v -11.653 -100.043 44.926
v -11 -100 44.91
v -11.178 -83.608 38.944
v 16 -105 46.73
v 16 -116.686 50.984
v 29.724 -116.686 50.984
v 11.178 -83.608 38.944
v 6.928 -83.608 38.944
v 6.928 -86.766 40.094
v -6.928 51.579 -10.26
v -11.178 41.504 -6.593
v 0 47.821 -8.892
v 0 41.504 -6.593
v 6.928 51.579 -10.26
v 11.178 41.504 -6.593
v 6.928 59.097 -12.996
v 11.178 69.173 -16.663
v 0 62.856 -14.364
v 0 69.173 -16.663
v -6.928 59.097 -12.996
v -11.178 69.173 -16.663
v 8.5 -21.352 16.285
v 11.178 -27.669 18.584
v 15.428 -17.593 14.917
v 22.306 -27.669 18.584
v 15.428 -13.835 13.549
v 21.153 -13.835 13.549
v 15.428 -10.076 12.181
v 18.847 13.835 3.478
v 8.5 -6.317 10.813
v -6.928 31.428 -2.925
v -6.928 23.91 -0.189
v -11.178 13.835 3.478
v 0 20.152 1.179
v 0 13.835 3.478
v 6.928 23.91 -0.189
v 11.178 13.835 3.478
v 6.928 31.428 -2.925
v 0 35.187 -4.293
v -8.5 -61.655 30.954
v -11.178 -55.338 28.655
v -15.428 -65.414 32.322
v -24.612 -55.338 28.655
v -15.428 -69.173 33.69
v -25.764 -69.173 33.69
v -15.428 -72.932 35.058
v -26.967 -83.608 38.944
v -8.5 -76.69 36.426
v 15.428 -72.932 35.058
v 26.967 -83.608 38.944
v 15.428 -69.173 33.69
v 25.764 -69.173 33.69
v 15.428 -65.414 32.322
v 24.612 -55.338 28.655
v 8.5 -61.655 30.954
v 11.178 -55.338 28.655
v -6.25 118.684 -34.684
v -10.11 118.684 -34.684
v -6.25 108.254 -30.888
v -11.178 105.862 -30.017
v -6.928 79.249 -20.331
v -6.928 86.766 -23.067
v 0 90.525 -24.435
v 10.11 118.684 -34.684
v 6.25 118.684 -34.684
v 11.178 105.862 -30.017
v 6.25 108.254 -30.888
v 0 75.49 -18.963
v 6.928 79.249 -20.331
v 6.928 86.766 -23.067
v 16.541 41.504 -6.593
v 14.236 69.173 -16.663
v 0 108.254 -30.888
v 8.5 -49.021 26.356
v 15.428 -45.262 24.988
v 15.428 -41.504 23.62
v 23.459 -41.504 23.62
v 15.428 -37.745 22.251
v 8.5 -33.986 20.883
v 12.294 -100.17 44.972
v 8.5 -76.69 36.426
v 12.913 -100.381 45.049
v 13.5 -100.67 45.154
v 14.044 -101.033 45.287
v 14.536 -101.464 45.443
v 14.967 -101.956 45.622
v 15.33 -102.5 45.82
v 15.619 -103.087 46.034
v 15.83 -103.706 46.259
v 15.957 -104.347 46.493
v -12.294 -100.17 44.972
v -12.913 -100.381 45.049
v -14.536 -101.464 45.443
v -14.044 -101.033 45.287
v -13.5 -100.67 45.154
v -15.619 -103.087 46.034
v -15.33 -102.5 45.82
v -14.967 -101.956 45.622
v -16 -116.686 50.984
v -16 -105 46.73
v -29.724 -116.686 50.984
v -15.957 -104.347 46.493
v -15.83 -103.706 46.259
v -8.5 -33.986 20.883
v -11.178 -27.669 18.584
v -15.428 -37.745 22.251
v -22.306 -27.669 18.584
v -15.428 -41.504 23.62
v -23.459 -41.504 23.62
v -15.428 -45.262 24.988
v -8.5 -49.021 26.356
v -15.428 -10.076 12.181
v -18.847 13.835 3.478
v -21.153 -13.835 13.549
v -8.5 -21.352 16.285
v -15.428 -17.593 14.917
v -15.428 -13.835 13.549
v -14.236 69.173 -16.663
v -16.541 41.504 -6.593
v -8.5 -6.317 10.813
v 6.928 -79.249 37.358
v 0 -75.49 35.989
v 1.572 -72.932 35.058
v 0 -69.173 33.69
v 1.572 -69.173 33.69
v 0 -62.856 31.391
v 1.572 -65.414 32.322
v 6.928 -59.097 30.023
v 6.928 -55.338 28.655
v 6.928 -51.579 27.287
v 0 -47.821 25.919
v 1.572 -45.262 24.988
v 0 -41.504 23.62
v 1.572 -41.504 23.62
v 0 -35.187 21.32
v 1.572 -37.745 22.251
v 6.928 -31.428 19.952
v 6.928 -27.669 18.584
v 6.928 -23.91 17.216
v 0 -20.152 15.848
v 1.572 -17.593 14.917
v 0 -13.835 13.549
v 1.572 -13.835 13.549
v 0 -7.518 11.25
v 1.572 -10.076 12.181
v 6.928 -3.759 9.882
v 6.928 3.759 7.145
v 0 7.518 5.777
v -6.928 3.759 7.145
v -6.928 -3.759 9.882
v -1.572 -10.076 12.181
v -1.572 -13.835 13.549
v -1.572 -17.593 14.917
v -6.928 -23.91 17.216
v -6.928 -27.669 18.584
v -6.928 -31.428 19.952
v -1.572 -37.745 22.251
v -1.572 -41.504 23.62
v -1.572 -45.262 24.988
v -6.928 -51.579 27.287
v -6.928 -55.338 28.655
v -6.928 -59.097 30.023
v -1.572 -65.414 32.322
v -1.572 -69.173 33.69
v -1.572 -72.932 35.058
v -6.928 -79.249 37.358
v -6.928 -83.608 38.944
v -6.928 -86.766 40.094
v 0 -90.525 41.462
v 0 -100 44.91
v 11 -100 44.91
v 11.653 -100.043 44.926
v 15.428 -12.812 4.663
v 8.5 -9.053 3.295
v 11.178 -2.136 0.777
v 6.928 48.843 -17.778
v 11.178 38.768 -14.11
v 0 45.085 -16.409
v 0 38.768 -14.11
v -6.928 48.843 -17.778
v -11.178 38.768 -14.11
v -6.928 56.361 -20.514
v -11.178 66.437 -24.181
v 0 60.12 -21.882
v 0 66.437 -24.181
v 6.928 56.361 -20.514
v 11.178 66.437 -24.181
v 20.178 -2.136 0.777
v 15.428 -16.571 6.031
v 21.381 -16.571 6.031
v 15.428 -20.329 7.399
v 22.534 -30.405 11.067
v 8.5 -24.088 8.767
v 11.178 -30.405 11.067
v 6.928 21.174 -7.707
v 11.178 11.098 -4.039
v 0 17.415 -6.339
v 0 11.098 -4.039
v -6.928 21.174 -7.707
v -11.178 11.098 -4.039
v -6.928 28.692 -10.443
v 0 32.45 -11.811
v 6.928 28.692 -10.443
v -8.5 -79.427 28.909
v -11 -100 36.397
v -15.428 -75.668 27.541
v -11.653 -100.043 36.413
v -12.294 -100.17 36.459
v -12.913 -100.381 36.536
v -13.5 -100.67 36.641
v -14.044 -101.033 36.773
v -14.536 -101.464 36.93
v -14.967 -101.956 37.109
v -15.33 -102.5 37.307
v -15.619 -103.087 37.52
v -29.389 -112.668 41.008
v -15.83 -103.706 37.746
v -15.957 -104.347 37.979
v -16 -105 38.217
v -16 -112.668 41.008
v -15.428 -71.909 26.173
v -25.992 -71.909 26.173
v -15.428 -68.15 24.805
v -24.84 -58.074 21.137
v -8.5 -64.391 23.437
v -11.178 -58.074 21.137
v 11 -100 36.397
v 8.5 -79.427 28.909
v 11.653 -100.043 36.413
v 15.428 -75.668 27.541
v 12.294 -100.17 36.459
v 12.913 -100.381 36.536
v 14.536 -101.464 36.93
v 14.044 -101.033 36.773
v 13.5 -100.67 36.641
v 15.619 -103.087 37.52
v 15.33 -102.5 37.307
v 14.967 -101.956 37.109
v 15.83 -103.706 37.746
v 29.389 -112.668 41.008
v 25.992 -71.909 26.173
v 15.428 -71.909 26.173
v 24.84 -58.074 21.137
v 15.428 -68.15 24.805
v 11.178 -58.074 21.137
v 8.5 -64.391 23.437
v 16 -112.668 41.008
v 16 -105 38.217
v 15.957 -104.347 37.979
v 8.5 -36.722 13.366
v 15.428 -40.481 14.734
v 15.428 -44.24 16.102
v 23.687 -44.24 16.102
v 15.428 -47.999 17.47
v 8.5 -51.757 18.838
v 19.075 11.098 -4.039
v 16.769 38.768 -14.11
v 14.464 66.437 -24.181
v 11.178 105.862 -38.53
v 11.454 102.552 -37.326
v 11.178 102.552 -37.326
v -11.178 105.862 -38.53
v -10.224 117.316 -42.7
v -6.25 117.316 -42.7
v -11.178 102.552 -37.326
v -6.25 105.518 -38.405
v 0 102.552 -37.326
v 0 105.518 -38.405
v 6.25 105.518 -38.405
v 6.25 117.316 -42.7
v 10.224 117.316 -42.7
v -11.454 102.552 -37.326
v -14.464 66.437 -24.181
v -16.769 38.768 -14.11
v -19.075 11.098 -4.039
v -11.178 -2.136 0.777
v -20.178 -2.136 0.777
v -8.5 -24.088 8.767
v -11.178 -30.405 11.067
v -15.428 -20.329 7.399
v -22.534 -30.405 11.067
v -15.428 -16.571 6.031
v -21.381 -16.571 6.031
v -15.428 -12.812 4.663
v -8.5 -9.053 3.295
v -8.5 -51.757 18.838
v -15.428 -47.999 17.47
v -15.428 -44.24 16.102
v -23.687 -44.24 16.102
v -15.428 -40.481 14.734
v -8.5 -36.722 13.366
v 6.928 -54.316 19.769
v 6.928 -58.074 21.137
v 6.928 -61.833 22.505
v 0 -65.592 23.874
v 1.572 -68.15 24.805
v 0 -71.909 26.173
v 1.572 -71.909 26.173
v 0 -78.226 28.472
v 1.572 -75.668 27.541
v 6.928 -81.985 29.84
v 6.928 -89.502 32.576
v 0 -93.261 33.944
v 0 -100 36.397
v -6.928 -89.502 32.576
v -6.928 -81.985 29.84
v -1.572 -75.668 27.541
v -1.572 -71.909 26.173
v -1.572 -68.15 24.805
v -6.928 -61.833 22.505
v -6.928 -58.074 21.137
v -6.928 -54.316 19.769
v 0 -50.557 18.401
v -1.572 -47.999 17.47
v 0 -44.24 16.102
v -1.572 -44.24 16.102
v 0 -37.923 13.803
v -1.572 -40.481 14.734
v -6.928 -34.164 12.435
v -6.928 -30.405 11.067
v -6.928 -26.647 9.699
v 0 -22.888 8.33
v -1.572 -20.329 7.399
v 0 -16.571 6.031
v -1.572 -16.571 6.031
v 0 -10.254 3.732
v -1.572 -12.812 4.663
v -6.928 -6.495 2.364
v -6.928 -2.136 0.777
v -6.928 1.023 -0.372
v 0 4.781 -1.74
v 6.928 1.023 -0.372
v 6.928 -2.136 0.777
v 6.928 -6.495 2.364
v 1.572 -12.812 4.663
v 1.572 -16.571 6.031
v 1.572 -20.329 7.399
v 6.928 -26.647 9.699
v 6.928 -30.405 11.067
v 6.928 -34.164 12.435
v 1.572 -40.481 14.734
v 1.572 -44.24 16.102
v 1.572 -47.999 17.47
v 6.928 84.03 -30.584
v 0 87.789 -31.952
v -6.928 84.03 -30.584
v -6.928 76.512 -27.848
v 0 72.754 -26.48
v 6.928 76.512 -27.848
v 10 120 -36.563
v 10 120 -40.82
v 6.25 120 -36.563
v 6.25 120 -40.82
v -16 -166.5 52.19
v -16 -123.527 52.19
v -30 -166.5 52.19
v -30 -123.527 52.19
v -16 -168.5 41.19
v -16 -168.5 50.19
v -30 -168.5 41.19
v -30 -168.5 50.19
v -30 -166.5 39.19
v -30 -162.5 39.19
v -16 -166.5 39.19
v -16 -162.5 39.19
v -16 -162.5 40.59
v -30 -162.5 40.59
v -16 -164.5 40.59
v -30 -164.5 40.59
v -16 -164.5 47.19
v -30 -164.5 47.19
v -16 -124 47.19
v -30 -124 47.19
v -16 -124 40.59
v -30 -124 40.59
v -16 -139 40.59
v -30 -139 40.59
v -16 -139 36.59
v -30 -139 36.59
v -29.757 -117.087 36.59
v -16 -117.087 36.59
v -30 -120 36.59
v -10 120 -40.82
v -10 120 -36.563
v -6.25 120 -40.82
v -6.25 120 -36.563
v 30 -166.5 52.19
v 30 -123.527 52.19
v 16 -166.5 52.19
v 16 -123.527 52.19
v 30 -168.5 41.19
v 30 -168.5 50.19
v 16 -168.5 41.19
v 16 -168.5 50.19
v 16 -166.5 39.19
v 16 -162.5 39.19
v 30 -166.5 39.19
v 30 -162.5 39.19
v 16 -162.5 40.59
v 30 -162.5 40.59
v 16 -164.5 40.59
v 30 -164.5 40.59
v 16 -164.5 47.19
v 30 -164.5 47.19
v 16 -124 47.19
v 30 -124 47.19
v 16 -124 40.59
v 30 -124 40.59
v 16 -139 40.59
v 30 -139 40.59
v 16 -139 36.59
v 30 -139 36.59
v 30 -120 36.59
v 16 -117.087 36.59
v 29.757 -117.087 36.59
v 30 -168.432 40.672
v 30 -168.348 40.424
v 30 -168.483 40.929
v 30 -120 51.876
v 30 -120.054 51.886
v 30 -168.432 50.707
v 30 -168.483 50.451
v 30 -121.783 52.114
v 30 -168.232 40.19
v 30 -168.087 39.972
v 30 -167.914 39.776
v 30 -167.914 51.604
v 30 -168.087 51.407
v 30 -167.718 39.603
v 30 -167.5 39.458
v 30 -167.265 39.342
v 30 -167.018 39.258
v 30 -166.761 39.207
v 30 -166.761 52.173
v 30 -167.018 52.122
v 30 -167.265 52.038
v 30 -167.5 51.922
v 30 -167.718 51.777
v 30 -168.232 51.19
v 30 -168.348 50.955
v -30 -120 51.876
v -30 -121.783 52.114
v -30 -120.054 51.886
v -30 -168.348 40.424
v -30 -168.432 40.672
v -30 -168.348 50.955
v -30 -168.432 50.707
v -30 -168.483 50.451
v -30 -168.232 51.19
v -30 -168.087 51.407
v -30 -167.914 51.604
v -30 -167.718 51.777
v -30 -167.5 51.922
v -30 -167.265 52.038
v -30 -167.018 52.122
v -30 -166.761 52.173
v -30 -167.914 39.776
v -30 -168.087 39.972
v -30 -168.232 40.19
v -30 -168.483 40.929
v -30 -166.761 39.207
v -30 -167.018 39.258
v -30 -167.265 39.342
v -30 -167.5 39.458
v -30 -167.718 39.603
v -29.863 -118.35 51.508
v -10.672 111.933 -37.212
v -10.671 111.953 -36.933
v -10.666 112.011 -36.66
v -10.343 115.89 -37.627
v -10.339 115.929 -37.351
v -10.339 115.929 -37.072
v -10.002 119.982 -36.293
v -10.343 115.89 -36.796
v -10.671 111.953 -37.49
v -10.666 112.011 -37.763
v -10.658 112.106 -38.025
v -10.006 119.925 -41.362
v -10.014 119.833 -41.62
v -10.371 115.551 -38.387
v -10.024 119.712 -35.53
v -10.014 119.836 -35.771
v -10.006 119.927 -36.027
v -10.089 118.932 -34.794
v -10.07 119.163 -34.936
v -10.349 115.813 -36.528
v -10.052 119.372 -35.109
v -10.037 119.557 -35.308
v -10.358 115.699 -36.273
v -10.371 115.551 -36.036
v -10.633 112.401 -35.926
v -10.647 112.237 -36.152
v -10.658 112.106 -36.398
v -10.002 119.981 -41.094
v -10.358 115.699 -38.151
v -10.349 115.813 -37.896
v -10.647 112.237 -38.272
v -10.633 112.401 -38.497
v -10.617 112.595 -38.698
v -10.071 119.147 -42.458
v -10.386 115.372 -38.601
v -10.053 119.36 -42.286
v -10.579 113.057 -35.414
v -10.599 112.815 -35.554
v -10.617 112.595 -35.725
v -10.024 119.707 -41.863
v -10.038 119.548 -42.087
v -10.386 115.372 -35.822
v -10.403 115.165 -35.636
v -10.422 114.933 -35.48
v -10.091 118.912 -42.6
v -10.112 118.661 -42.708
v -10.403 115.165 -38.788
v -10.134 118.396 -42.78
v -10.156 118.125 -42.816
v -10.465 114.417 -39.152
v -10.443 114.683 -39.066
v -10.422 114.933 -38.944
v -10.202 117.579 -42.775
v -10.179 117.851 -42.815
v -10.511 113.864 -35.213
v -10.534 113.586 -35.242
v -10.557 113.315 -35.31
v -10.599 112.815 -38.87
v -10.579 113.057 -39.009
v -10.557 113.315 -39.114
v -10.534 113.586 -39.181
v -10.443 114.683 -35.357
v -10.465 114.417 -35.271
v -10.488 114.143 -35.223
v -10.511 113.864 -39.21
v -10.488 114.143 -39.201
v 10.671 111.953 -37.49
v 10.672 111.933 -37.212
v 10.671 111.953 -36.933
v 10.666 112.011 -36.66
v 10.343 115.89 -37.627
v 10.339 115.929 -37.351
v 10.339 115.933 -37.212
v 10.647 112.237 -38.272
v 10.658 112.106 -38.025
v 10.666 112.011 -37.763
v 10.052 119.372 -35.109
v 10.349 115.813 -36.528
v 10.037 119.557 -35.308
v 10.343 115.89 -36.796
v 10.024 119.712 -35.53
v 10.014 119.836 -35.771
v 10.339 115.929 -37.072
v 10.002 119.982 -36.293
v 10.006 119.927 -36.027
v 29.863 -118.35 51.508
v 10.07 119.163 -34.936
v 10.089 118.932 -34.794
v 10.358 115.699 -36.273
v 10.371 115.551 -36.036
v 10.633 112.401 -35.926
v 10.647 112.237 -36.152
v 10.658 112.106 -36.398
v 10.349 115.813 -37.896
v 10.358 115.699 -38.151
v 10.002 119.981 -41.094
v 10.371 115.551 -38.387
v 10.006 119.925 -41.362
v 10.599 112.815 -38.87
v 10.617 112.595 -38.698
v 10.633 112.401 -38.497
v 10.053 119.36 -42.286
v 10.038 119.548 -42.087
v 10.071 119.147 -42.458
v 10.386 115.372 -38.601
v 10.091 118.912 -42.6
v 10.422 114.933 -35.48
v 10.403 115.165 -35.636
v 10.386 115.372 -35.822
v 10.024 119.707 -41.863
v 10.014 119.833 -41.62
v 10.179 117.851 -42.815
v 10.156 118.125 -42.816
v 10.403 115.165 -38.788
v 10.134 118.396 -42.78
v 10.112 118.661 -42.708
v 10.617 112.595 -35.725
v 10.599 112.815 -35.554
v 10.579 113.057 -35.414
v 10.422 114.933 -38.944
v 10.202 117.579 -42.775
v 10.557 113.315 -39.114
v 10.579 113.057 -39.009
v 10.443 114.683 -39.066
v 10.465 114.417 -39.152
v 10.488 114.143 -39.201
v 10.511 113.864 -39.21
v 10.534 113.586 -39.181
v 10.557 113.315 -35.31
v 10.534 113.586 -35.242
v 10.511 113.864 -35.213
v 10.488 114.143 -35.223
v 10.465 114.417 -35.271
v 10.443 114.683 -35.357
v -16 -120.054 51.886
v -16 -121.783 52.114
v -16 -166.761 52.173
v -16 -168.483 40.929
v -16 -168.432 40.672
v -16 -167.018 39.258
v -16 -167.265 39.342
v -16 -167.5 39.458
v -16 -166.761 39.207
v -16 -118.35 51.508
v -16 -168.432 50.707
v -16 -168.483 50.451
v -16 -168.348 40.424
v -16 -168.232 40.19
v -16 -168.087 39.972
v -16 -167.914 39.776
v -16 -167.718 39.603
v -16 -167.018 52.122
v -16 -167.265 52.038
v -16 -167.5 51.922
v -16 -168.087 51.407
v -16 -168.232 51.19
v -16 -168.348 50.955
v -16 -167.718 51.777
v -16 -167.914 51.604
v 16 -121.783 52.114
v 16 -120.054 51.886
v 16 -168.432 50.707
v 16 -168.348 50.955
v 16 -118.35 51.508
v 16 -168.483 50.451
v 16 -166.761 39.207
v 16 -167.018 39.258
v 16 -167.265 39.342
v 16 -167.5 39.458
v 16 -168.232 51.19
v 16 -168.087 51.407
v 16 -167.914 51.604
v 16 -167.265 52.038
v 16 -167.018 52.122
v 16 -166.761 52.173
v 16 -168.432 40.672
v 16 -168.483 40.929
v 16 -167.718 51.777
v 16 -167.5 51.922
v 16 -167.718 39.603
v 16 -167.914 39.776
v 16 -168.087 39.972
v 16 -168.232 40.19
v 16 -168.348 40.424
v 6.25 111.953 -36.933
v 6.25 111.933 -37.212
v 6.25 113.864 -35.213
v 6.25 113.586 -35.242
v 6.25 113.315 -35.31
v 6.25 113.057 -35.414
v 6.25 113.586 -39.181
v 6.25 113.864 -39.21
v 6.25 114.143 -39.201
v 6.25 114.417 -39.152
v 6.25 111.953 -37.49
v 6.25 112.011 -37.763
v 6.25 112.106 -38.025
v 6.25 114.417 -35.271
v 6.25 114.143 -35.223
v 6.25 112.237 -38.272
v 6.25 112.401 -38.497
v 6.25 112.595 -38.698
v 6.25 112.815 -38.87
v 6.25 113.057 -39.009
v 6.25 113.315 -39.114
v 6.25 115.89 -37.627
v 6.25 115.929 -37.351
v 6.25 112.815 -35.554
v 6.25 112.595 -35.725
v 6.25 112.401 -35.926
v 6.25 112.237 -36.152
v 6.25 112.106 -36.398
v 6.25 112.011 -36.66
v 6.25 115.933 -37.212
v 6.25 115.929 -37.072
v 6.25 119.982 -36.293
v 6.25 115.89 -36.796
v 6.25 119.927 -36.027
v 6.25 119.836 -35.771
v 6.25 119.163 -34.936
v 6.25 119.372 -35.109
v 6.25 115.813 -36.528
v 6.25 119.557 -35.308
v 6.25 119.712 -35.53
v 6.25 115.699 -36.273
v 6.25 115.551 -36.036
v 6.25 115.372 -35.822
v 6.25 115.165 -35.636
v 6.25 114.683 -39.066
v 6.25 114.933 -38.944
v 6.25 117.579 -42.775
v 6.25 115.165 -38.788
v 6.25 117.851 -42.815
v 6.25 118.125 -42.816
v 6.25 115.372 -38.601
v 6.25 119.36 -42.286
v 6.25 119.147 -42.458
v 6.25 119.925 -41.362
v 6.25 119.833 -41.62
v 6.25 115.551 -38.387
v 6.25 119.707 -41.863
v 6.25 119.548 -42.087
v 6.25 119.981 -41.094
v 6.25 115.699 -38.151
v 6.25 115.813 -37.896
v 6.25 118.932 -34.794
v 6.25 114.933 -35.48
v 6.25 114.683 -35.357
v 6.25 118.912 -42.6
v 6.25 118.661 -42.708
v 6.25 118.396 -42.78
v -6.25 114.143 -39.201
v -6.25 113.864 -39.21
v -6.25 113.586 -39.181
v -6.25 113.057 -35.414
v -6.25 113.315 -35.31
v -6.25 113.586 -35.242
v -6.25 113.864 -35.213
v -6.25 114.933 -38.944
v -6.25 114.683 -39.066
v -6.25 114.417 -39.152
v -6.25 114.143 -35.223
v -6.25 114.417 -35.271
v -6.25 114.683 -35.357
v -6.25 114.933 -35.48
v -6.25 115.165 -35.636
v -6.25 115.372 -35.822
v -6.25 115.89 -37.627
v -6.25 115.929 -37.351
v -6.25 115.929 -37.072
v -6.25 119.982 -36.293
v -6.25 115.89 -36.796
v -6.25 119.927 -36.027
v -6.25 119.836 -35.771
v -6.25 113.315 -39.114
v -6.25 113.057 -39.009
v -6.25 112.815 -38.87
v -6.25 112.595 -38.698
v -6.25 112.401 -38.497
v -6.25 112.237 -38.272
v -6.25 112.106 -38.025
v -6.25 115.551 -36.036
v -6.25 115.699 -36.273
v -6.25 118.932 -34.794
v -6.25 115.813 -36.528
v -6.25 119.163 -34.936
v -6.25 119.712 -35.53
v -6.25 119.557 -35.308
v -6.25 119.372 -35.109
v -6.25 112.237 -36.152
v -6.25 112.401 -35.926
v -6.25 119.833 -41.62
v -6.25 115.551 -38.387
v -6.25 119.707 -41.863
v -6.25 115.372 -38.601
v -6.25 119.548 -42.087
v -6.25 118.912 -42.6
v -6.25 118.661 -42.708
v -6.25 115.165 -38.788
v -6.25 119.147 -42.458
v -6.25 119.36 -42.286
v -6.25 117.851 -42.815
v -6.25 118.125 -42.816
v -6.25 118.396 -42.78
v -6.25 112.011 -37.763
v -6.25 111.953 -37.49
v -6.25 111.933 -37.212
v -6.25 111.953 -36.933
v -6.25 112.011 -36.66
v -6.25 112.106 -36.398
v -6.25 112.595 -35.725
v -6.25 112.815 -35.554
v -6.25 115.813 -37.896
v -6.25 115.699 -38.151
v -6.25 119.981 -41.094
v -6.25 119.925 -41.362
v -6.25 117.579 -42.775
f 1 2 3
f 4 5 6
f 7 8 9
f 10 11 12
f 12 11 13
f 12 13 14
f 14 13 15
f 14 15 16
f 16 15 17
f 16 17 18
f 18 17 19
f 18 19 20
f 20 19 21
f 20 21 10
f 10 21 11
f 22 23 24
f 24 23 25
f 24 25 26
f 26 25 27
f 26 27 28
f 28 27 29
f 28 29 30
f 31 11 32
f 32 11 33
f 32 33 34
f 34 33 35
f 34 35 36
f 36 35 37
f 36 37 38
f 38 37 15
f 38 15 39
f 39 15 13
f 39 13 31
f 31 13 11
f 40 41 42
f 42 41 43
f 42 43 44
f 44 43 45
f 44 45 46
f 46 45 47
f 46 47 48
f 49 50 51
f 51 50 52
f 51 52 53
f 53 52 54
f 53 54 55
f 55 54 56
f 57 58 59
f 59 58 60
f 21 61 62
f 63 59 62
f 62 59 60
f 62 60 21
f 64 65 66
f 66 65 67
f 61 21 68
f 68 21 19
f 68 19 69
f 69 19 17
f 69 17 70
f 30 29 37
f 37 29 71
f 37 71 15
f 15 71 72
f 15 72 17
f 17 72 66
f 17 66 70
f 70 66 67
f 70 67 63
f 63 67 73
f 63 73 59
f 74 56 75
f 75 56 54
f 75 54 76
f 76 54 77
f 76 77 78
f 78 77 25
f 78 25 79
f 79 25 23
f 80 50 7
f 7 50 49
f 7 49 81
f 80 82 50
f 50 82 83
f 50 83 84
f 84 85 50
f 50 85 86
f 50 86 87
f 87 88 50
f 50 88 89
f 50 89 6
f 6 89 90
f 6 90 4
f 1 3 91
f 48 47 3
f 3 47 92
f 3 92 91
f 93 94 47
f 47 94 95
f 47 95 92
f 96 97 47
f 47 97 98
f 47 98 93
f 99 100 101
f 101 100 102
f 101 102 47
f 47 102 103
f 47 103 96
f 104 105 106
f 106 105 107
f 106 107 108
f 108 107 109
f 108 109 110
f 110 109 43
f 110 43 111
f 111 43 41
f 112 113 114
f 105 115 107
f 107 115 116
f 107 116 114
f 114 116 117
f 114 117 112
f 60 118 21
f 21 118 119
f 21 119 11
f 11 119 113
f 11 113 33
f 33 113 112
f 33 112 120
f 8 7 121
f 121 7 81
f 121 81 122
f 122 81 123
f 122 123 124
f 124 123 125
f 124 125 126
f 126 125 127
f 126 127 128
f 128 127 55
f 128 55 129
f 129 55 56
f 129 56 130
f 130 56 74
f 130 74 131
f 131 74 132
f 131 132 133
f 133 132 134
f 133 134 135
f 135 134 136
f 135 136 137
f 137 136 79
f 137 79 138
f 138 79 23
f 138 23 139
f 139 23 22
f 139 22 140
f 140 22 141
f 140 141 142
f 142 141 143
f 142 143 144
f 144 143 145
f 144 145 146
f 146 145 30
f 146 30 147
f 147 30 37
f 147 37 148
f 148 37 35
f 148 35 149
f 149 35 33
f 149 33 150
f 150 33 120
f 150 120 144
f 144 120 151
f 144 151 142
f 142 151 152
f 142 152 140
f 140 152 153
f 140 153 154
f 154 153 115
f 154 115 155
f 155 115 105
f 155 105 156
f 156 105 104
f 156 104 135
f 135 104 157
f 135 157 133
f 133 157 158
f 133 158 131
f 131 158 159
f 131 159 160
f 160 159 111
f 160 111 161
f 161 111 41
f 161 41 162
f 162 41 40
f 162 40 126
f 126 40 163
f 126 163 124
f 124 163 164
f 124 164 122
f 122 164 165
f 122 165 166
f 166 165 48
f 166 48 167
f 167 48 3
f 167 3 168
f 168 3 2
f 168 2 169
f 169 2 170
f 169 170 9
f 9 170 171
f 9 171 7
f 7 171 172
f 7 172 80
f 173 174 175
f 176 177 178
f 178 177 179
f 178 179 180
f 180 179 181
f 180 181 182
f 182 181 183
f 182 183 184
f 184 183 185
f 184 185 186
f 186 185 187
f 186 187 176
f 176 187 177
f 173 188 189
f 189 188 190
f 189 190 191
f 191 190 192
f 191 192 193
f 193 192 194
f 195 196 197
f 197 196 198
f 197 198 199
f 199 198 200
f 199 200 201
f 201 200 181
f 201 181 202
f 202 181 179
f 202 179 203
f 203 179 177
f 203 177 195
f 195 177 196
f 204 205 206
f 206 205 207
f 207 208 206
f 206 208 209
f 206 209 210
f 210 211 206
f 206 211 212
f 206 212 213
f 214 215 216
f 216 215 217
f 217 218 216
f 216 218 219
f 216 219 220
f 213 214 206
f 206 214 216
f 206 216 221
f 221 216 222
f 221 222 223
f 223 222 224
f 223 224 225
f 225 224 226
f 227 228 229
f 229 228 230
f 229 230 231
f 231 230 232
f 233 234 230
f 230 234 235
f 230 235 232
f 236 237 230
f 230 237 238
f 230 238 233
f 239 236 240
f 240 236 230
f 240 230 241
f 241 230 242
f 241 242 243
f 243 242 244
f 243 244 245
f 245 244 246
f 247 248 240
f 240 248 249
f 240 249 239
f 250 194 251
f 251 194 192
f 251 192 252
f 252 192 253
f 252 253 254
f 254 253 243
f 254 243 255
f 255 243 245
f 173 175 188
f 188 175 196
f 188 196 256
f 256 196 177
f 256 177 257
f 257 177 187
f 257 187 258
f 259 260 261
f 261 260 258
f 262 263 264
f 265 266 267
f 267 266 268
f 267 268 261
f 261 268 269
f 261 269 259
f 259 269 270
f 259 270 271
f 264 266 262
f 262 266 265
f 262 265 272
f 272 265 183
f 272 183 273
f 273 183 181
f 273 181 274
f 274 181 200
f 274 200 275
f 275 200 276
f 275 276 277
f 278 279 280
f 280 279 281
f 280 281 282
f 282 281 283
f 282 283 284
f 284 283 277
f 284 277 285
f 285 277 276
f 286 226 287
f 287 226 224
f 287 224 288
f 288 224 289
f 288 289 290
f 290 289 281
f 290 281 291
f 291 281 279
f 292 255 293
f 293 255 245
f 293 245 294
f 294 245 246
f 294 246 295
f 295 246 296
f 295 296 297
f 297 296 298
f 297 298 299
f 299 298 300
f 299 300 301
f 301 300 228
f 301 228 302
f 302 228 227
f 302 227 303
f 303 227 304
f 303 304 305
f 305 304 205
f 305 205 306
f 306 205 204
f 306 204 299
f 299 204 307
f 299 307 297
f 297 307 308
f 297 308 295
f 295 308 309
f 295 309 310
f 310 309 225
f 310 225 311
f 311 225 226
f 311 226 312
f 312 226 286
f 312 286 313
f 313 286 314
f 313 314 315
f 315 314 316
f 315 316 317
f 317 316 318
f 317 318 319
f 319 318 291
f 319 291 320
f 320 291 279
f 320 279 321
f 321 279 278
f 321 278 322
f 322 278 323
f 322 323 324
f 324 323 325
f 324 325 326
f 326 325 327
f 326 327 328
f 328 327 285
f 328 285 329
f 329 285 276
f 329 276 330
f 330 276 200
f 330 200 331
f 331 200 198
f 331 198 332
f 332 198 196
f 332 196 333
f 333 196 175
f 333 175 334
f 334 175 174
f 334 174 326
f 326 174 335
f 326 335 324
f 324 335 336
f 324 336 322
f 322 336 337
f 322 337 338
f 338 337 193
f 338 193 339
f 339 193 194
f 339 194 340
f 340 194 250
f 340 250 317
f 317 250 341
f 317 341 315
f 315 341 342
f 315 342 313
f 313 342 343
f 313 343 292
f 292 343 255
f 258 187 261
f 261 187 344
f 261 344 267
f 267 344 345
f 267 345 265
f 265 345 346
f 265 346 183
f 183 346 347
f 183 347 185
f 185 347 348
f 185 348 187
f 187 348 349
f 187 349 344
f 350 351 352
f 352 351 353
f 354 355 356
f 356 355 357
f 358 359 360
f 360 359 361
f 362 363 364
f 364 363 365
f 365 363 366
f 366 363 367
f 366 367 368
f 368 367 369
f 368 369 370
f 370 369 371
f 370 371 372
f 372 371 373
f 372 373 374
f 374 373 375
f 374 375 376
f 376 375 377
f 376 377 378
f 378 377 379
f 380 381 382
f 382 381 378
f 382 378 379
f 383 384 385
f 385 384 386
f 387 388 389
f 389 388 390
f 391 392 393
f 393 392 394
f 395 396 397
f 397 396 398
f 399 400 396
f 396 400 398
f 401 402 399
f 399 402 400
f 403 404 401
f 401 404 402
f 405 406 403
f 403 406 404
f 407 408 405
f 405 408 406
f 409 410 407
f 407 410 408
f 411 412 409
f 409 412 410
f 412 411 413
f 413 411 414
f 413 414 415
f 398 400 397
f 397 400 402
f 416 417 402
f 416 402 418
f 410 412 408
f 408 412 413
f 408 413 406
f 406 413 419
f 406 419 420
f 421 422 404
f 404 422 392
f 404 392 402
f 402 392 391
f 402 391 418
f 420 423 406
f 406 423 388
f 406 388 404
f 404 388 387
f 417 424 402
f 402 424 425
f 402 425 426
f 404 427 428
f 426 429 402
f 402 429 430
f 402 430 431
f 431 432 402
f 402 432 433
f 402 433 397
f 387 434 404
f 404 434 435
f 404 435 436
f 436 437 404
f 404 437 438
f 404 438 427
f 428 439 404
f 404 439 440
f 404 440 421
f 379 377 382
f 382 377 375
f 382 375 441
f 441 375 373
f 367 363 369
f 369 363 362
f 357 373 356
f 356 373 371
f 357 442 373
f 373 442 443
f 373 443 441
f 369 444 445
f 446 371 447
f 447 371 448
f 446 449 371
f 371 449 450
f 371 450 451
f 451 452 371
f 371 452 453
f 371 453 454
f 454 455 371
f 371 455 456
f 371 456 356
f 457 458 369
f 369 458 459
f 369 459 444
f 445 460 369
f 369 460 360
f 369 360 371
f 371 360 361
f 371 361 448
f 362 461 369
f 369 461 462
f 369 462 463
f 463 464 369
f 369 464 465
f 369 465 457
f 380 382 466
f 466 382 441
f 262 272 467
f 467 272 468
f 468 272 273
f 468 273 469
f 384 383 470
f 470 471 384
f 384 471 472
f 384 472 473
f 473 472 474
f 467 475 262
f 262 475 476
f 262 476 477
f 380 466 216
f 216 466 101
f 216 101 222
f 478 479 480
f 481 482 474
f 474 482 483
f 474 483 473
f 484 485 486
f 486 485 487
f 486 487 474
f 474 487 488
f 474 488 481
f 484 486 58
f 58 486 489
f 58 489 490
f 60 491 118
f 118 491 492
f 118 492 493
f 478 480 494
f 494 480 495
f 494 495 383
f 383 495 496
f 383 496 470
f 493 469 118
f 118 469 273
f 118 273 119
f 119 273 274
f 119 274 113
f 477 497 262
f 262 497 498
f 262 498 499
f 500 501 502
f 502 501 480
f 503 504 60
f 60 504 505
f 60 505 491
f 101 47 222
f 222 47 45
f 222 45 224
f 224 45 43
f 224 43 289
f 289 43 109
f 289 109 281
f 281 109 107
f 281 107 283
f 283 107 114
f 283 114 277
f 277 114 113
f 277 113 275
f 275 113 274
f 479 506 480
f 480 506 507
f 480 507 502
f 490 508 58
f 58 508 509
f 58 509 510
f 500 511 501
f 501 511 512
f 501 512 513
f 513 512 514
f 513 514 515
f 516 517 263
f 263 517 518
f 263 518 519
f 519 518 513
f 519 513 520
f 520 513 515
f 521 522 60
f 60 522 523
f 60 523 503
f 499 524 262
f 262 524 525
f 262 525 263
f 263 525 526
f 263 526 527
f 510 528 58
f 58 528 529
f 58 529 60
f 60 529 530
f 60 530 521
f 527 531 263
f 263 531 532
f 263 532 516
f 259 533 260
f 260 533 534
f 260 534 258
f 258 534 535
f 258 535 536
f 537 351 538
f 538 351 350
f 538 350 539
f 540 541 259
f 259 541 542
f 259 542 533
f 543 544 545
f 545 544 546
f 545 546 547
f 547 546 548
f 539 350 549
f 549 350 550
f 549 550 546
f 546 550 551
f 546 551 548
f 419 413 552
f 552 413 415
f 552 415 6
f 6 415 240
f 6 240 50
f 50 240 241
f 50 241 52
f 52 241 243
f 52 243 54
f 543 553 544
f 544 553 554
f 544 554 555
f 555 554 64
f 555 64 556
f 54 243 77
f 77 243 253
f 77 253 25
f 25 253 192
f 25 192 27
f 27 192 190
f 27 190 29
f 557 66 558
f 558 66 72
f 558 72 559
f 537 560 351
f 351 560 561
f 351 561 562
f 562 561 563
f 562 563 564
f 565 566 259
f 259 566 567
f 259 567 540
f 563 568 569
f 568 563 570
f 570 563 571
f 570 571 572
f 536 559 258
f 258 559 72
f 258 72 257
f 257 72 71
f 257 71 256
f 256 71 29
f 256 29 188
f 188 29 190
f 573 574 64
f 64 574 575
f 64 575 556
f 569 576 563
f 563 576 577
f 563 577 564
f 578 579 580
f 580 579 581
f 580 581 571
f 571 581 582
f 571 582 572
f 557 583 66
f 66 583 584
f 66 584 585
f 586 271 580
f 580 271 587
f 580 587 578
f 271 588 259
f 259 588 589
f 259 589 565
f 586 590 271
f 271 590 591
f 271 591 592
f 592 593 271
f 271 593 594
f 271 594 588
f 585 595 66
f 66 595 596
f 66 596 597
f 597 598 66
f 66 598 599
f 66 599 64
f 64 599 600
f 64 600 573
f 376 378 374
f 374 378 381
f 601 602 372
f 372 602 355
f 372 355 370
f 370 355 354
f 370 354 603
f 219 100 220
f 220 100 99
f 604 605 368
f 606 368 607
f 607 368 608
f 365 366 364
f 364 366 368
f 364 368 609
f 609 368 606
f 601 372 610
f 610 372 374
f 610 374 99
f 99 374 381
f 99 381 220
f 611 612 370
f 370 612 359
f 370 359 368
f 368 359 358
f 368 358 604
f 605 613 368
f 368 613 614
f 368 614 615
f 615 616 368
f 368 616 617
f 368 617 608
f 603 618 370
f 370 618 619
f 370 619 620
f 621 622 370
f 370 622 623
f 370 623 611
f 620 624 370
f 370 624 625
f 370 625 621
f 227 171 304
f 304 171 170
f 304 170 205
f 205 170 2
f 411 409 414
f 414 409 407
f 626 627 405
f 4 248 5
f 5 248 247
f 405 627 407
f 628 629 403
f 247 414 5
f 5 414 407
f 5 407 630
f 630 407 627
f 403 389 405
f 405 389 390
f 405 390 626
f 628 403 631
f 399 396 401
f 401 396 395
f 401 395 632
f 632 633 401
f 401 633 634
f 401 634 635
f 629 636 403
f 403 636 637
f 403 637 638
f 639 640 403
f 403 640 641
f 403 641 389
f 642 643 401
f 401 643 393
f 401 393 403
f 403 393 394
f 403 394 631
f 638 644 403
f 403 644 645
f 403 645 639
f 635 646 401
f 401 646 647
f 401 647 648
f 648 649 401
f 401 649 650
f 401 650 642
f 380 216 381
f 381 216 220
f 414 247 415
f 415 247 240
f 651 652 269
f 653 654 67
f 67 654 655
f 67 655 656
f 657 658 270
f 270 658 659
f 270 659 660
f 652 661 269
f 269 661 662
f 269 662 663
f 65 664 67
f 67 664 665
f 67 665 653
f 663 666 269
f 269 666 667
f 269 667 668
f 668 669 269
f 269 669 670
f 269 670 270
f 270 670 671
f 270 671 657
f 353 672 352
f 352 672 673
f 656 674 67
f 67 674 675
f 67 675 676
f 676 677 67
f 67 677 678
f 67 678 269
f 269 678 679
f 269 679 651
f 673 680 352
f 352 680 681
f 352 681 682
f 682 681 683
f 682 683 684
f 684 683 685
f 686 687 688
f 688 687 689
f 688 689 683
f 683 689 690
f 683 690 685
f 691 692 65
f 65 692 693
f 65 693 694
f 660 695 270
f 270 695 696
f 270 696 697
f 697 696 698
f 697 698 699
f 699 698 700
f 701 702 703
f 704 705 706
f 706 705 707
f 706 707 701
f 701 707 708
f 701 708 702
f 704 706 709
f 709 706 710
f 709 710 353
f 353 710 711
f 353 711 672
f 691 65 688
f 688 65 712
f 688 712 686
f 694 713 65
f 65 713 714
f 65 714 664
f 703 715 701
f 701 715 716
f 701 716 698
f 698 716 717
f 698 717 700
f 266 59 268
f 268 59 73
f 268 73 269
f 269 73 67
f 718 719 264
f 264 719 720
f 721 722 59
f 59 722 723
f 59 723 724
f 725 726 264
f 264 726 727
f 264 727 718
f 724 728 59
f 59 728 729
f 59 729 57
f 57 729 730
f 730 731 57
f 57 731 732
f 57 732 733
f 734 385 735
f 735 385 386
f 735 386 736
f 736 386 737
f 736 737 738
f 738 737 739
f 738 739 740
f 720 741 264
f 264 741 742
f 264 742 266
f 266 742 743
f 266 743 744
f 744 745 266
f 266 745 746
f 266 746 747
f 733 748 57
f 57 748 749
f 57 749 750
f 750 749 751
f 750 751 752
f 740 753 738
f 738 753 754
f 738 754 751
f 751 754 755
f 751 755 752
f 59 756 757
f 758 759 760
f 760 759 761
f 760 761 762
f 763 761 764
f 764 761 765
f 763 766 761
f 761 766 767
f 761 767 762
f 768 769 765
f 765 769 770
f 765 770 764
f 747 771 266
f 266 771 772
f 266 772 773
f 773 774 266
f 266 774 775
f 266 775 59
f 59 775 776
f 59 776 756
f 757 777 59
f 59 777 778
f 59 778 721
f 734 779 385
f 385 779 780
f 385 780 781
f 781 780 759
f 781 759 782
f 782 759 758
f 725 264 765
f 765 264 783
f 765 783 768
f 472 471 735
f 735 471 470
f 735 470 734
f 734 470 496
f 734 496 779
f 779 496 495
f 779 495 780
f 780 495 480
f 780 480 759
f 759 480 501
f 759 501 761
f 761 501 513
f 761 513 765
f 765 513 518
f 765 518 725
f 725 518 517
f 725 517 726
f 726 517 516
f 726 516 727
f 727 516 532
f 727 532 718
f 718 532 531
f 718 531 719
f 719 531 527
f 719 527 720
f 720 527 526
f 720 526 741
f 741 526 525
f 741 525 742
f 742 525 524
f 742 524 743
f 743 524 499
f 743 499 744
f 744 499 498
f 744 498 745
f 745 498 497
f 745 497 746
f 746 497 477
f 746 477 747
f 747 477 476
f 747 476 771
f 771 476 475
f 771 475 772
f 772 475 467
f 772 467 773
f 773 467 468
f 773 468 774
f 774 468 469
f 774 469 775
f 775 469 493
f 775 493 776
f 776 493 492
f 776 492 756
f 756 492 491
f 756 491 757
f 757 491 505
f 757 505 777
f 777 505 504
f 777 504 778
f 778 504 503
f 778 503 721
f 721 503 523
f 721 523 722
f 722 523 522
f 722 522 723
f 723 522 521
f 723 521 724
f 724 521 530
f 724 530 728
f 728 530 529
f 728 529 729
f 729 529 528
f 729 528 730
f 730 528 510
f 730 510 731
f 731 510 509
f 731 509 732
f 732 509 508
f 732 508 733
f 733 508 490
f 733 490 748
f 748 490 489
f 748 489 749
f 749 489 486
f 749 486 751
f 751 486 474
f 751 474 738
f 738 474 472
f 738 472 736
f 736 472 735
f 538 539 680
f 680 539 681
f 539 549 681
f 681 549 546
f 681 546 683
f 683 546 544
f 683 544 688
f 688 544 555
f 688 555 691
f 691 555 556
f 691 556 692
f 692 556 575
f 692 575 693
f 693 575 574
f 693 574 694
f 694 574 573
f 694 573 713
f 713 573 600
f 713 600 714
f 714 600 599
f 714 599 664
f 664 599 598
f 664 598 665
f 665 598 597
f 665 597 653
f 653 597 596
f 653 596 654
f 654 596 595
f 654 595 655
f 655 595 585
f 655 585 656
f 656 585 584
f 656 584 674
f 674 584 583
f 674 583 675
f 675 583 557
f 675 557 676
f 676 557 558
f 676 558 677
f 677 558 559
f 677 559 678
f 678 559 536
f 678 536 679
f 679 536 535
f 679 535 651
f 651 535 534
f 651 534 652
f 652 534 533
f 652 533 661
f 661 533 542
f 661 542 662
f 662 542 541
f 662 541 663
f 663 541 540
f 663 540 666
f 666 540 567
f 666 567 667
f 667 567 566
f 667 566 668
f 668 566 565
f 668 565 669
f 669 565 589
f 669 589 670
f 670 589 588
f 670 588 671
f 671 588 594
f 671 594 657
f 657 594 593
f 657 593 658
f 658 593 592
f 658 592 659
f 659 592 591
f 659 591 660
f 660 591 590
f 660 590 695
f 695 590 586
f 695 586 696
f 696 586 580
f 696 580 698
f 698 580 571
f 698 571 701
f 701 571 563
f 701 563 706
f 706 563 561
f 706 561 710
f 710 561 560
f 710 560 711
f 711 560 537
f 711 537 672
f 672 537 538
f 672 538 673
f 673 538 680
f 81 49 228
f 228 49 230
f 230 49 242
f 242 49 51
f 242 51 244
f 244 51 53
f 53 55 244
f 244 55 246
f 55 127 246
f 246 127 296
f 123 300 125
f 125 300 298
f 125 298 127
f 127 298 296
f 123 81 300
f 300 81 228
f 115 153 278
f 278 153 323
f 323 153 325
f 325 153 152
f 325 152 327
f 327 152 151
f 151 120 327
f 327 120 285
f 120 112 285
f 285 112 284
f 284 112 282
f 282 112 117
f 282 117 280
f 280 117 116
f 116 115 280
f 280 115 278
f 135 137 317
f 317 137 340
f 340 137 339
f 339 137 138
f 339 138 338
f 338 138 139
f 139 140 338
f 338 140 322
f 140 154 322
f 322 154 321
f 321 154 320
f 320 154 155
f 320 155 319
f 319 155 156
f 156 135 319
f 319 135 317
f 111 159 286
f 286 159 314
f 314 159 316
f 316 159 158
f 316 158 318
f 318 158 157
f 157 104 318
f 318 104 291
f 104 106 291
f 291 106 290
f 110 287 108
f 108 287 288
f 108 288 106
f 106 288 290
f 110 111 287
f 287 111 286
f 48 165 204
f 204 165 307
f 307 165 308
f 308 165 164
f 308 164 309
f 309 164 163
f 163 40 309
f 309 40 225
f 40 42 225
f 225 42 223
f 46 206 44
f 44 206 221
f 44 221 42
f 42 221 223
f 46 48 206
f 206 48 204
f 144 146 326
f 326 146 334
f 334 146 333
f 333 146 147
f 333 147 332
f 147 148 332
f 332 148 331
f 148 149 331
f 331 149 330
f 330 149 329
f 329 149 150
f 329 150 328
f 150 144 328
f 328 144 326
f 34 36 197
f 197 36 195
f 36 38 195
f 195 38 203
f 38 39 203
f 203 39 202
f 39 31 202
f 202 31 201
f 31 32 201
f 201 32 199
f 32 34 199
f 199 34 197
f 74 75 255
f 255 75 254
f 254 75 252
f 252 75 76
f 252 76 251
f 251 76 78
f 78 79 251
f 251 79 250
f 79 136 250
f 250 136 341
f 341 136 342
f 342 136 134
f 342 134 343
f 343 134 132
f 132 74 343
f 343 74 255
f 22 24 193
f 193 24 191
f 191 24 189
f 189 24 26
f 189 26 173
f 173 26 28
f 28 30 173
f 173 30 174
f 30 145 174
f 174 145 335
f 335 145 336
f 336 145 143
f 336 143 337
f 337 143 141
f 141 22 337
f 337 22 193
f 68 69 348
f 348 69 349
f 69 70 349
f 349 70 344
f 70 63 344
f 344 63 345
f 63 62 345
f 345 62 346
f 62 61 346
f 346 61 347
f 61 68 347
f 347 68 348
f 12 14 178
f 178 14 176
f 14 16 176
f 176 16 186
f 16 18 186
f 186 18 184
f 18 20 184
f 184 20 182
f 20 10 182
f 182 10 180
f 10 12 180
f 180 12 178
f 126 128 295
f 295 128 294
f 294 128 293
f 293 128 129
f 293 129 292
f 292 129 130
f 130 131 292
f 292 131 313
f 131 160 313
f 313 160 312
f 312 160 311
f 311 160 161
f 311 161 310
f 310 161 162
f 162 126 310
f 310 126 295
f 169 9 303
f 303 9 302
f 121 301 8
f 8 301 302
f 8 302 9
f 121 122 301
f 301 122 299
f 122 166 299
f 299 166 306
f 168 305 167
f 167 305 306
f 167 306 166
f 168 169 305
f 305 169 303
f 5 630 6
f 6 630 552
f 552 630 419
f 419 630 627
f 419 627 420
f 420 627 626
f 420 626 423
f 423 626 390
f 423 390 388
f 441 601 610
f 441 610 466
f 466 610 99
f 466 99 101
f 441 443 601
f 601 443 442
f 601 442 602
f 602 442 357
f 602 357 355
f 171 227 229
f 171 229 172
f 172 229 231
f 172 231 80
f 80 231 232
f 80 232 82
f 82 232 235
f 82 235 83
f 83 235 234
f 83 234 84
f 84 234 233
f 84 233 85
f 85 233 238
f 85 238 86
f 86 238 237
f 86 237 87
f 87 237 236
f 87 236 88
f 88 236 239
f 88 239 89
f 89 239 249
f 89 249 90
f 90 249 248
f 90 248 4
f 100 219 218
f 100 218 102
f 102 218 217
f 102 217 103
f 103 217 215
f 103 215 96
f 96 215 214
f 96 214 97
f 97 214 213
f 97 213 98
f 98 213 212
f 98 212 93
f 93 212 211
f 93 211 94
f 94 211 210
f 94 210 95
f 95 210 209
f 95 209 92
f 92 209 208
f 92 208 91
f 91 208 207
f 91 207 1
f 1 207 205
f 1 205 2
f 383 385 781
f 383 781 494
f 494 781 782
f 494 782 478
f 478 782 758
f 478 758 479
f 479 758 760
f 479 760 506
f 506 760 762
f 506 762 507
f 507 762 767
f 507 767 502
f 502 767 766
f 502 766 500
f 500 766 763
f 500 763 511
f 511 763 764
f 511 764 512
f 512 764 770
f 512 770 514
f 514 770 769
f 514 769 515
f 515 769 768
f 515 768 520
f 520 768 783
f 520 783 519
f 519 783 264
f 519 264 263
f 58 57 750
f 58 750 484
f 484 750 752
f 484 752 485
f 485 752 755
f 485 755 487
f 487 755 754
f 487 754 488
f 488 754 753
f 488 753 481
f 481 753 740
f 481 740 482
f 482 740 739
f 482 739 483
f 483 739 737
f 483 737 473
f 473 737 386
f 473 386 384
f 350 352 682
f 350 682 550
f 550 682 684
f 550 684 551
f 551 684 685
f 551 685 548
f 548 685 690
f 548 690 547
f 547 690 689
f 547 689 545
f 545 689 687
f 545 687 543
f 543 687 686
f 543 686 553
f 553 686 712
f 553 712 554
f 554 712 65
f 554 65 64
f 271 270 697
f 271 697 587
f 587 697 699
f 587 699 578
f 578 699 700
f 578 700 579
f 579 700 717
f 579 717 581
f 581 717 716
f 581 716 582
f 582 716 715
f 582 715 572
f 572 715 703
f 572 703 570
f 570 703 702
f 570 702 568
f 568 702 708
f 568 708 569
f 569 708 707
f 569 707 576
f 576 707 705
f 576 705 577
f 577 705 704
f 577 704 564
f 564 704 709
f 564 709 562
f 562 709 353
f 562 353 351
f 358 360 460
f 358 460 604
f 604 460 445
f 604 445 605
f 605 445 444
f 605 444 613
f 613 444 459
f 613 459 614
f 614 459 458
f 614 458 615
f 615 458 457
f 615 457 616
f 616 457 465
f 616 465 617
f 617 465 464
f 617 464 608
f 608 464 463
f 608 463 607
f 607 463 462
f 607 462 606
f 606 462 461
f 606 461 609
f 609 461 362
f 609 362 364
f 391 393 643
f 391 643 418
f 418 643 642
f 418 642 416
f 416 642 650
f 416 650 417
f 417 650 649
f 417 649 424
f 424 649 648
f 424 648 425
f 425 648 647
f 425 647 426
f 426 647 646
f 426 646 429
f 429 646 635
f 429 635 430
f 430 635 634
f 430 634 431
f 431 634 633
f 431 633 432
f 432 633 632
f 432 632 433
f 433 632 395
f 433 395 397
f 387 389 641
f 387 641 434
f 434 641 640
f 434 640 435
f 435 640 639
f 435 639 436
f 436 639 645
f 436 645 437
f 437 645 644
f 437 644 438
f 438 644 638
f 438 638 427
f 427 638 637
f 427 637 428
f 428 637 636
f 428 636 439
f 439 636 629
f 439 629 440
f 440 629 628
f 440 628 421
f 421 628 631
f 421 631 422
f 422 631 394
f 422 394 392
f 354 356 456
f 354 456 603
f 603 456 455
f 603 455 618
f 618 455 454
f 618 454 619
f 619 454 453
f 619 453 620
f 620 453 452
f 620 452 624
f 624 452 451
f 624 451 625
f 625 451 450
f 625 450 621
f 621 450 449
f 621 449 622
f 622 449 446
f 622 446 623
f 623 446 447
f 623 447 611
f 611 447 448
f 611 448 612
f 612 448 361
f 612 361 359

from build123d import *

# Parameters (mm, degrees)
BOSS_EXTRUDE1_DEPTH     = 30
CUT_EXTRUDE1_DEPTH      = 197.169807399
SKETCH4_W               = 32
SKETCH4_H               = 68.5
CUT_EXTRUDE2_DEPTH      = 197.169807399
CHAMFER1_SIZE           = 7.802060087
CHAMFER1_SIZE_2         = 10
CUT_EXTRUDE3_DEPTH      = 163.649773439
CUT_EXTRUDE4_DEPTH      = 181.083572192
CUT_EXTRUDE4_DEPTH_BACK = 181.083572192
SKETCH6_R               = 2
FILL_PATTERN1_DEPTH     = 8
FILLET5_R               = 20
FILLET2_R               = 5
FILLET4_R               = 2
FILLET6_R               = 2


# Read off the part's stored shape, not the designer's step: Fill Pattern1
with BuildPart() as part:
    # Sketch2 → Boss-Extrude1 (new, symmetric)
    with BuildSketch(Plane(origin=(0, 0, 0), x_dir=(0, 0, -1), z_dir=(1, 0, 0))):
        Polygon((35.163005932, 120), (-52.189850292, -120), (-52.189850292, -168.5), (-39.189850292, -168.5), (-39.189850292, -162.5), (-40.589850292, -162.5), (-40.589850292, -164.5), (-47.189850292, -164.5), (-47.189850292, -124), (-40.589850292, -124), (-40.589850292, -139), (-36.589850292, -139), (-36.589850292, -120), (-43.676428112, -120), (43.676428112, 120), align=None)
    extrude(amount=BOSS_EXTRUDE1_DEPTH, both=True)

    # Sketch3 → Cut-Extrude1 (cut, through all)
    with BuildSketch(Plane.XY.offset(52.189850292)):
        Polygon((-30, 120), (-30, -120), (-10, 120), align=None)
        Polygon((10, 120), (30, 120), (30, -120), align=None)
    extrude(amount=-CUT_EXTRUDE1_DEPTH, mode=Mode.SUBTRACT)

    # Sketch4 → Cut-Extrude2 (cut, through all)
    with BuildSketch(Plane.XY.offset(52.189850292)):
        with Locations((0, -134.25)):
            Rectangle(SKETCH4_W, SKETCH4_H)
    extrude(amount=-CUT_EXTRUDE2_DEPTH, mode=Mode.SUBTRACT)

    # Chamfer1
    # the kernel refuses this chamfer: 10, 7.802060087 mm, written as the material it adds along each edge
    with BuildSketch(Plane(origin=(-16, -120, 43.676428112), x_dir=(0, 0.9542611885293295, -0.29897421973573485), z_dir=(-1, 0, 0))) as chamfer1_piece_1_section:
        Polygon((CHAMFER1_SIZE * 0.998967402661, CHAMFER1_SIZE * 0.0454326803806), (CHAMFER1_SIZE_2 * 0.298974219736, CHAMFER1_SIZE_2 * 0.954261188529), (0, 0), align=None)
    chamfer1_piece_1 = extrude(amount=14, mode=Mode.PRIVATE)
    chamfer1_piece_1 = split(chamfer1_piece_1, bisect_by=Plane(origin=(-29.733836006, -116.806032072, 40.079574986), z_dir=(0.9965457582448797, -0.08304547985373997, 0)), keep=Keep.TOP, mode=Mode.PRIVATE)
    chamfer1_piece_1 = split(chamfer1_piece_1, bisect_by=Plane(origin=(-22.890520375, -117.376308375, 36.589850292), z_dir=(0, 0, 1)), keep=Keep.TOP, mode=Mode.PRIVATE)
    add(chamfer1_piece_1)
    with BuildSketch(Plane(origin=(30, -120, 43.676428112), x_dir=(0, 0.9542611885293295, -0.29897421973573485), z_dir=(-1, 0, 0))) as chamfer1_piece_2_section:
        Polygon((CHAMFER1_SIZE * 0.998967402661, CHAMFER1_SIZE * 0.0454326803806), (CHAMFER1_SIZE_2 * 0.298974219736, CHAMFER1_SIZE_2 * 0.954261188529), (0, 0), align=None)
    chamfer1_piece_2 = extrude(amount=14, mode=Mode.PRIVATE)
    chamfer1_piece_2 = split(chamfer1_piece_2, bisect_by=Plane(origin=(29.733836006, -116.806032072, 40.079574986), z_dir=(-0.9965457582448797, -0.08304547985373997, 0)), keep=Keep.TOP, mode=Mode.PRIVATE)
    chamfer1_piece_2 = split(chamfer1_piece_2, bisect_by=Plane(origin=(22.890520375, -117.376308375, 36.589850292), z_dir=(0, 0, 1)), keep=Keep.TOP, mode=Mode.PRIVATE)
    add(chamfer1_piece_2)

    # Sketch5 → Cut-Extrude3 (cut, through all)
    with BuildSketch(Plane(origin=(0, -20.133671251, 15.841479222), x_dir=(1, 0, 0), z_dir=(0, 0.3420201433256661, 0.9396926207859094))):
        Polygon((6.25, 149.12713812), (6.25, 136.62713812), (-6.25, 136.62713812), (-6.25, 149.12713812), (-6.25, 152.038899995), (6.25, 152.038899995), align=None)
    extrude(amount=-CUT_EXTRUDE3_DEPTH, mode=Mode.SUBTRACT)

    # Sketch6 → Cut-Extrude4 (cut, two sides: drawn at the far end of the back side and taken through both)
    with BuildSketch(Plane.ZY.offset(-6.25).offset(-CUT_EXTRUDE4_DEPTH_BACK)):
        with Locations(Location((-37.211675699, 113.933456323, 0), (0, 0, 270))):
            Circle(SKETCH6_R)
    extrude(amount=CUT_EXTRUDE4_DEPTH + CUT_EXTRUDE4_DEPTH_BACK, mode=Mode.SUBTRACT)

    # Fill Pattern1 outline → Fill Pattern1 (cut)
    with BuildSketch(Plane(origin=(0, 0, 0), x_dir=(1, 0, 0), z_dir=(0, 0.34202014332566616, 0.9396926207859093))):
        Polygon((8.5, -84.523921196), (15.42820323, -80.523921196), (15.42820323, -72.523921196), (8.5, -68.523921196), (1.57179677, -72.523921196), (1.57179677, -80.523921196), align=None)
        Polygon((15.42820323, -51.079057467), (15.42820323, -43.079057467), (8.5, -39.079057467), (1.57179677, -43.079057467), (1.57179677, -51.079057467), (8.5, -55.079057467), align=None)
        Polygon((15.42820323, -21.634193738), (15.42820323, -13.634193738), (8.5, -9.634193738), (1.57179677, -13.634193738), (1.57179677, -21.634193738), (8.5, -25.634193738), align=None)
        Polygon((-8.5, -25.634193738), (-1.57179677, -21.634193738), (-1.57179677, -13.634193738), (-8.5, -9.634193738), (-15.42820323, -13.634193738), (-15.42820323, -21.634193738), align=None)
        Polygon((-1.57179677, -51.079057467), (-1.57179677, -43.079057467), (-8.5, -39.079057467), (-15.42820323, -43.079057467), (-15.42820323, -51.079057467), (-8.5, -55.079057467), align=None)
        Polygon((-1.57179677, -80.523921196), (-1.57179677, -72.523921196), (-8.5, -68.523921196), (-15.42820323, -72.523921196), (-15.42820323, -80.523921196), (-8.5, -84.523921196), align=None)
        Polygon((0, -40.356625603), (6.92820323, -36.356625603), (6.92820323, -28.356625603), (0, -24.356625603), (-6.92820323, -28.356625603), (-6.92820323, -36.356625603), align=None)
        Polygon((6.92820323, -6.911761874), (6.92820323, 1.088238126), (0, 5.088238126), (-6.92820323, 1.088238126), (-6.92820323, -6.911761874), (0, -10.911761874), align=None)
        Polygon((6.92820323, 22.533101855), (6.92820323, 30.533101855), (0, 34.533101855), (-6.92820323, 30.533101855), (-6.92820323, 22.533101855), (0, 18.533101855), align=None)
        Polygon((6.92820323, 81.422829312), (6.92820323, 89.422829312), (0, 93.422829312), (-6.92820323, 89.422829312), (-6.92820323, 81.422829312), (0, 77.422829312), align=None)
        Polygon((6.92820323, 51.977965583), (6.92820323, 59.977965583), (0, 63.977965583), (-6.92820323, 59.977965583), (-6.92820323, 51.977965583), (0, 47.977965583), align=None)
        Polygon((6.92820323, -65.801489331), (6.92820323, -57.801489331), (0, -53.801489331), (-6.92820323, -57.801489331), (-6.92820323, -65.801489331), (0, -69.801489331), align=None)
        Polygon((6.92820323, -95.24635306), (6.92820323, -87.24635306), (0, -83.24635306), (-6.92820323, -87.24635306), (-6.92820323, -95.24635306), (0, -99.24635306), align=None)
    extrude(amount=FILL_PATTERN1_DEPTH, mode=Mode.SUBTRACT)

    # Fillet5
    fillet5_edges = [part.edges().sort_by_distance(p)[0] for p in [
        (23, -120, 52.189850292),
        (-23, -120, 52.189850292),
    ]]
    fillet(fillet5_edges, radius=FILLET5_R)

    # Fillet2
    fillet2_edges = [part.edges().sort_by_distance(p)[0] for p in [
        (-16, -100, 40.653734517),
        (16, -100, 40.653734517),
    ]]
    fillet(fillet2_edges, radius=FILLET2_R)

    # Fillet4
    fillet4_edges = [part.edges().sort_by_distance(p)[0] for p in [
        (-8.125, 120, -43.676428112),
        (-8.125, 120, -35.163005932),
        (8.125, 120, -43.676428112),
        (8.125, 120, -35.163005932),
    ]]
    fillet(fillet4_edges, radius=FILLET4_R)

    # Fillet6
    fillet6_edges = [part.edges().sort_by_distance(p)[0] for p in [
        (23, -168.5, 39.189850292),
        (23, -168.5, 52.189850292),
        (-23, -168.5, 39.189850292),
        (-23, -168.5, 52.189850292),
    ]]
    fillet(fillet6_edges, radius=FILLET6_R)


solid = part.part
